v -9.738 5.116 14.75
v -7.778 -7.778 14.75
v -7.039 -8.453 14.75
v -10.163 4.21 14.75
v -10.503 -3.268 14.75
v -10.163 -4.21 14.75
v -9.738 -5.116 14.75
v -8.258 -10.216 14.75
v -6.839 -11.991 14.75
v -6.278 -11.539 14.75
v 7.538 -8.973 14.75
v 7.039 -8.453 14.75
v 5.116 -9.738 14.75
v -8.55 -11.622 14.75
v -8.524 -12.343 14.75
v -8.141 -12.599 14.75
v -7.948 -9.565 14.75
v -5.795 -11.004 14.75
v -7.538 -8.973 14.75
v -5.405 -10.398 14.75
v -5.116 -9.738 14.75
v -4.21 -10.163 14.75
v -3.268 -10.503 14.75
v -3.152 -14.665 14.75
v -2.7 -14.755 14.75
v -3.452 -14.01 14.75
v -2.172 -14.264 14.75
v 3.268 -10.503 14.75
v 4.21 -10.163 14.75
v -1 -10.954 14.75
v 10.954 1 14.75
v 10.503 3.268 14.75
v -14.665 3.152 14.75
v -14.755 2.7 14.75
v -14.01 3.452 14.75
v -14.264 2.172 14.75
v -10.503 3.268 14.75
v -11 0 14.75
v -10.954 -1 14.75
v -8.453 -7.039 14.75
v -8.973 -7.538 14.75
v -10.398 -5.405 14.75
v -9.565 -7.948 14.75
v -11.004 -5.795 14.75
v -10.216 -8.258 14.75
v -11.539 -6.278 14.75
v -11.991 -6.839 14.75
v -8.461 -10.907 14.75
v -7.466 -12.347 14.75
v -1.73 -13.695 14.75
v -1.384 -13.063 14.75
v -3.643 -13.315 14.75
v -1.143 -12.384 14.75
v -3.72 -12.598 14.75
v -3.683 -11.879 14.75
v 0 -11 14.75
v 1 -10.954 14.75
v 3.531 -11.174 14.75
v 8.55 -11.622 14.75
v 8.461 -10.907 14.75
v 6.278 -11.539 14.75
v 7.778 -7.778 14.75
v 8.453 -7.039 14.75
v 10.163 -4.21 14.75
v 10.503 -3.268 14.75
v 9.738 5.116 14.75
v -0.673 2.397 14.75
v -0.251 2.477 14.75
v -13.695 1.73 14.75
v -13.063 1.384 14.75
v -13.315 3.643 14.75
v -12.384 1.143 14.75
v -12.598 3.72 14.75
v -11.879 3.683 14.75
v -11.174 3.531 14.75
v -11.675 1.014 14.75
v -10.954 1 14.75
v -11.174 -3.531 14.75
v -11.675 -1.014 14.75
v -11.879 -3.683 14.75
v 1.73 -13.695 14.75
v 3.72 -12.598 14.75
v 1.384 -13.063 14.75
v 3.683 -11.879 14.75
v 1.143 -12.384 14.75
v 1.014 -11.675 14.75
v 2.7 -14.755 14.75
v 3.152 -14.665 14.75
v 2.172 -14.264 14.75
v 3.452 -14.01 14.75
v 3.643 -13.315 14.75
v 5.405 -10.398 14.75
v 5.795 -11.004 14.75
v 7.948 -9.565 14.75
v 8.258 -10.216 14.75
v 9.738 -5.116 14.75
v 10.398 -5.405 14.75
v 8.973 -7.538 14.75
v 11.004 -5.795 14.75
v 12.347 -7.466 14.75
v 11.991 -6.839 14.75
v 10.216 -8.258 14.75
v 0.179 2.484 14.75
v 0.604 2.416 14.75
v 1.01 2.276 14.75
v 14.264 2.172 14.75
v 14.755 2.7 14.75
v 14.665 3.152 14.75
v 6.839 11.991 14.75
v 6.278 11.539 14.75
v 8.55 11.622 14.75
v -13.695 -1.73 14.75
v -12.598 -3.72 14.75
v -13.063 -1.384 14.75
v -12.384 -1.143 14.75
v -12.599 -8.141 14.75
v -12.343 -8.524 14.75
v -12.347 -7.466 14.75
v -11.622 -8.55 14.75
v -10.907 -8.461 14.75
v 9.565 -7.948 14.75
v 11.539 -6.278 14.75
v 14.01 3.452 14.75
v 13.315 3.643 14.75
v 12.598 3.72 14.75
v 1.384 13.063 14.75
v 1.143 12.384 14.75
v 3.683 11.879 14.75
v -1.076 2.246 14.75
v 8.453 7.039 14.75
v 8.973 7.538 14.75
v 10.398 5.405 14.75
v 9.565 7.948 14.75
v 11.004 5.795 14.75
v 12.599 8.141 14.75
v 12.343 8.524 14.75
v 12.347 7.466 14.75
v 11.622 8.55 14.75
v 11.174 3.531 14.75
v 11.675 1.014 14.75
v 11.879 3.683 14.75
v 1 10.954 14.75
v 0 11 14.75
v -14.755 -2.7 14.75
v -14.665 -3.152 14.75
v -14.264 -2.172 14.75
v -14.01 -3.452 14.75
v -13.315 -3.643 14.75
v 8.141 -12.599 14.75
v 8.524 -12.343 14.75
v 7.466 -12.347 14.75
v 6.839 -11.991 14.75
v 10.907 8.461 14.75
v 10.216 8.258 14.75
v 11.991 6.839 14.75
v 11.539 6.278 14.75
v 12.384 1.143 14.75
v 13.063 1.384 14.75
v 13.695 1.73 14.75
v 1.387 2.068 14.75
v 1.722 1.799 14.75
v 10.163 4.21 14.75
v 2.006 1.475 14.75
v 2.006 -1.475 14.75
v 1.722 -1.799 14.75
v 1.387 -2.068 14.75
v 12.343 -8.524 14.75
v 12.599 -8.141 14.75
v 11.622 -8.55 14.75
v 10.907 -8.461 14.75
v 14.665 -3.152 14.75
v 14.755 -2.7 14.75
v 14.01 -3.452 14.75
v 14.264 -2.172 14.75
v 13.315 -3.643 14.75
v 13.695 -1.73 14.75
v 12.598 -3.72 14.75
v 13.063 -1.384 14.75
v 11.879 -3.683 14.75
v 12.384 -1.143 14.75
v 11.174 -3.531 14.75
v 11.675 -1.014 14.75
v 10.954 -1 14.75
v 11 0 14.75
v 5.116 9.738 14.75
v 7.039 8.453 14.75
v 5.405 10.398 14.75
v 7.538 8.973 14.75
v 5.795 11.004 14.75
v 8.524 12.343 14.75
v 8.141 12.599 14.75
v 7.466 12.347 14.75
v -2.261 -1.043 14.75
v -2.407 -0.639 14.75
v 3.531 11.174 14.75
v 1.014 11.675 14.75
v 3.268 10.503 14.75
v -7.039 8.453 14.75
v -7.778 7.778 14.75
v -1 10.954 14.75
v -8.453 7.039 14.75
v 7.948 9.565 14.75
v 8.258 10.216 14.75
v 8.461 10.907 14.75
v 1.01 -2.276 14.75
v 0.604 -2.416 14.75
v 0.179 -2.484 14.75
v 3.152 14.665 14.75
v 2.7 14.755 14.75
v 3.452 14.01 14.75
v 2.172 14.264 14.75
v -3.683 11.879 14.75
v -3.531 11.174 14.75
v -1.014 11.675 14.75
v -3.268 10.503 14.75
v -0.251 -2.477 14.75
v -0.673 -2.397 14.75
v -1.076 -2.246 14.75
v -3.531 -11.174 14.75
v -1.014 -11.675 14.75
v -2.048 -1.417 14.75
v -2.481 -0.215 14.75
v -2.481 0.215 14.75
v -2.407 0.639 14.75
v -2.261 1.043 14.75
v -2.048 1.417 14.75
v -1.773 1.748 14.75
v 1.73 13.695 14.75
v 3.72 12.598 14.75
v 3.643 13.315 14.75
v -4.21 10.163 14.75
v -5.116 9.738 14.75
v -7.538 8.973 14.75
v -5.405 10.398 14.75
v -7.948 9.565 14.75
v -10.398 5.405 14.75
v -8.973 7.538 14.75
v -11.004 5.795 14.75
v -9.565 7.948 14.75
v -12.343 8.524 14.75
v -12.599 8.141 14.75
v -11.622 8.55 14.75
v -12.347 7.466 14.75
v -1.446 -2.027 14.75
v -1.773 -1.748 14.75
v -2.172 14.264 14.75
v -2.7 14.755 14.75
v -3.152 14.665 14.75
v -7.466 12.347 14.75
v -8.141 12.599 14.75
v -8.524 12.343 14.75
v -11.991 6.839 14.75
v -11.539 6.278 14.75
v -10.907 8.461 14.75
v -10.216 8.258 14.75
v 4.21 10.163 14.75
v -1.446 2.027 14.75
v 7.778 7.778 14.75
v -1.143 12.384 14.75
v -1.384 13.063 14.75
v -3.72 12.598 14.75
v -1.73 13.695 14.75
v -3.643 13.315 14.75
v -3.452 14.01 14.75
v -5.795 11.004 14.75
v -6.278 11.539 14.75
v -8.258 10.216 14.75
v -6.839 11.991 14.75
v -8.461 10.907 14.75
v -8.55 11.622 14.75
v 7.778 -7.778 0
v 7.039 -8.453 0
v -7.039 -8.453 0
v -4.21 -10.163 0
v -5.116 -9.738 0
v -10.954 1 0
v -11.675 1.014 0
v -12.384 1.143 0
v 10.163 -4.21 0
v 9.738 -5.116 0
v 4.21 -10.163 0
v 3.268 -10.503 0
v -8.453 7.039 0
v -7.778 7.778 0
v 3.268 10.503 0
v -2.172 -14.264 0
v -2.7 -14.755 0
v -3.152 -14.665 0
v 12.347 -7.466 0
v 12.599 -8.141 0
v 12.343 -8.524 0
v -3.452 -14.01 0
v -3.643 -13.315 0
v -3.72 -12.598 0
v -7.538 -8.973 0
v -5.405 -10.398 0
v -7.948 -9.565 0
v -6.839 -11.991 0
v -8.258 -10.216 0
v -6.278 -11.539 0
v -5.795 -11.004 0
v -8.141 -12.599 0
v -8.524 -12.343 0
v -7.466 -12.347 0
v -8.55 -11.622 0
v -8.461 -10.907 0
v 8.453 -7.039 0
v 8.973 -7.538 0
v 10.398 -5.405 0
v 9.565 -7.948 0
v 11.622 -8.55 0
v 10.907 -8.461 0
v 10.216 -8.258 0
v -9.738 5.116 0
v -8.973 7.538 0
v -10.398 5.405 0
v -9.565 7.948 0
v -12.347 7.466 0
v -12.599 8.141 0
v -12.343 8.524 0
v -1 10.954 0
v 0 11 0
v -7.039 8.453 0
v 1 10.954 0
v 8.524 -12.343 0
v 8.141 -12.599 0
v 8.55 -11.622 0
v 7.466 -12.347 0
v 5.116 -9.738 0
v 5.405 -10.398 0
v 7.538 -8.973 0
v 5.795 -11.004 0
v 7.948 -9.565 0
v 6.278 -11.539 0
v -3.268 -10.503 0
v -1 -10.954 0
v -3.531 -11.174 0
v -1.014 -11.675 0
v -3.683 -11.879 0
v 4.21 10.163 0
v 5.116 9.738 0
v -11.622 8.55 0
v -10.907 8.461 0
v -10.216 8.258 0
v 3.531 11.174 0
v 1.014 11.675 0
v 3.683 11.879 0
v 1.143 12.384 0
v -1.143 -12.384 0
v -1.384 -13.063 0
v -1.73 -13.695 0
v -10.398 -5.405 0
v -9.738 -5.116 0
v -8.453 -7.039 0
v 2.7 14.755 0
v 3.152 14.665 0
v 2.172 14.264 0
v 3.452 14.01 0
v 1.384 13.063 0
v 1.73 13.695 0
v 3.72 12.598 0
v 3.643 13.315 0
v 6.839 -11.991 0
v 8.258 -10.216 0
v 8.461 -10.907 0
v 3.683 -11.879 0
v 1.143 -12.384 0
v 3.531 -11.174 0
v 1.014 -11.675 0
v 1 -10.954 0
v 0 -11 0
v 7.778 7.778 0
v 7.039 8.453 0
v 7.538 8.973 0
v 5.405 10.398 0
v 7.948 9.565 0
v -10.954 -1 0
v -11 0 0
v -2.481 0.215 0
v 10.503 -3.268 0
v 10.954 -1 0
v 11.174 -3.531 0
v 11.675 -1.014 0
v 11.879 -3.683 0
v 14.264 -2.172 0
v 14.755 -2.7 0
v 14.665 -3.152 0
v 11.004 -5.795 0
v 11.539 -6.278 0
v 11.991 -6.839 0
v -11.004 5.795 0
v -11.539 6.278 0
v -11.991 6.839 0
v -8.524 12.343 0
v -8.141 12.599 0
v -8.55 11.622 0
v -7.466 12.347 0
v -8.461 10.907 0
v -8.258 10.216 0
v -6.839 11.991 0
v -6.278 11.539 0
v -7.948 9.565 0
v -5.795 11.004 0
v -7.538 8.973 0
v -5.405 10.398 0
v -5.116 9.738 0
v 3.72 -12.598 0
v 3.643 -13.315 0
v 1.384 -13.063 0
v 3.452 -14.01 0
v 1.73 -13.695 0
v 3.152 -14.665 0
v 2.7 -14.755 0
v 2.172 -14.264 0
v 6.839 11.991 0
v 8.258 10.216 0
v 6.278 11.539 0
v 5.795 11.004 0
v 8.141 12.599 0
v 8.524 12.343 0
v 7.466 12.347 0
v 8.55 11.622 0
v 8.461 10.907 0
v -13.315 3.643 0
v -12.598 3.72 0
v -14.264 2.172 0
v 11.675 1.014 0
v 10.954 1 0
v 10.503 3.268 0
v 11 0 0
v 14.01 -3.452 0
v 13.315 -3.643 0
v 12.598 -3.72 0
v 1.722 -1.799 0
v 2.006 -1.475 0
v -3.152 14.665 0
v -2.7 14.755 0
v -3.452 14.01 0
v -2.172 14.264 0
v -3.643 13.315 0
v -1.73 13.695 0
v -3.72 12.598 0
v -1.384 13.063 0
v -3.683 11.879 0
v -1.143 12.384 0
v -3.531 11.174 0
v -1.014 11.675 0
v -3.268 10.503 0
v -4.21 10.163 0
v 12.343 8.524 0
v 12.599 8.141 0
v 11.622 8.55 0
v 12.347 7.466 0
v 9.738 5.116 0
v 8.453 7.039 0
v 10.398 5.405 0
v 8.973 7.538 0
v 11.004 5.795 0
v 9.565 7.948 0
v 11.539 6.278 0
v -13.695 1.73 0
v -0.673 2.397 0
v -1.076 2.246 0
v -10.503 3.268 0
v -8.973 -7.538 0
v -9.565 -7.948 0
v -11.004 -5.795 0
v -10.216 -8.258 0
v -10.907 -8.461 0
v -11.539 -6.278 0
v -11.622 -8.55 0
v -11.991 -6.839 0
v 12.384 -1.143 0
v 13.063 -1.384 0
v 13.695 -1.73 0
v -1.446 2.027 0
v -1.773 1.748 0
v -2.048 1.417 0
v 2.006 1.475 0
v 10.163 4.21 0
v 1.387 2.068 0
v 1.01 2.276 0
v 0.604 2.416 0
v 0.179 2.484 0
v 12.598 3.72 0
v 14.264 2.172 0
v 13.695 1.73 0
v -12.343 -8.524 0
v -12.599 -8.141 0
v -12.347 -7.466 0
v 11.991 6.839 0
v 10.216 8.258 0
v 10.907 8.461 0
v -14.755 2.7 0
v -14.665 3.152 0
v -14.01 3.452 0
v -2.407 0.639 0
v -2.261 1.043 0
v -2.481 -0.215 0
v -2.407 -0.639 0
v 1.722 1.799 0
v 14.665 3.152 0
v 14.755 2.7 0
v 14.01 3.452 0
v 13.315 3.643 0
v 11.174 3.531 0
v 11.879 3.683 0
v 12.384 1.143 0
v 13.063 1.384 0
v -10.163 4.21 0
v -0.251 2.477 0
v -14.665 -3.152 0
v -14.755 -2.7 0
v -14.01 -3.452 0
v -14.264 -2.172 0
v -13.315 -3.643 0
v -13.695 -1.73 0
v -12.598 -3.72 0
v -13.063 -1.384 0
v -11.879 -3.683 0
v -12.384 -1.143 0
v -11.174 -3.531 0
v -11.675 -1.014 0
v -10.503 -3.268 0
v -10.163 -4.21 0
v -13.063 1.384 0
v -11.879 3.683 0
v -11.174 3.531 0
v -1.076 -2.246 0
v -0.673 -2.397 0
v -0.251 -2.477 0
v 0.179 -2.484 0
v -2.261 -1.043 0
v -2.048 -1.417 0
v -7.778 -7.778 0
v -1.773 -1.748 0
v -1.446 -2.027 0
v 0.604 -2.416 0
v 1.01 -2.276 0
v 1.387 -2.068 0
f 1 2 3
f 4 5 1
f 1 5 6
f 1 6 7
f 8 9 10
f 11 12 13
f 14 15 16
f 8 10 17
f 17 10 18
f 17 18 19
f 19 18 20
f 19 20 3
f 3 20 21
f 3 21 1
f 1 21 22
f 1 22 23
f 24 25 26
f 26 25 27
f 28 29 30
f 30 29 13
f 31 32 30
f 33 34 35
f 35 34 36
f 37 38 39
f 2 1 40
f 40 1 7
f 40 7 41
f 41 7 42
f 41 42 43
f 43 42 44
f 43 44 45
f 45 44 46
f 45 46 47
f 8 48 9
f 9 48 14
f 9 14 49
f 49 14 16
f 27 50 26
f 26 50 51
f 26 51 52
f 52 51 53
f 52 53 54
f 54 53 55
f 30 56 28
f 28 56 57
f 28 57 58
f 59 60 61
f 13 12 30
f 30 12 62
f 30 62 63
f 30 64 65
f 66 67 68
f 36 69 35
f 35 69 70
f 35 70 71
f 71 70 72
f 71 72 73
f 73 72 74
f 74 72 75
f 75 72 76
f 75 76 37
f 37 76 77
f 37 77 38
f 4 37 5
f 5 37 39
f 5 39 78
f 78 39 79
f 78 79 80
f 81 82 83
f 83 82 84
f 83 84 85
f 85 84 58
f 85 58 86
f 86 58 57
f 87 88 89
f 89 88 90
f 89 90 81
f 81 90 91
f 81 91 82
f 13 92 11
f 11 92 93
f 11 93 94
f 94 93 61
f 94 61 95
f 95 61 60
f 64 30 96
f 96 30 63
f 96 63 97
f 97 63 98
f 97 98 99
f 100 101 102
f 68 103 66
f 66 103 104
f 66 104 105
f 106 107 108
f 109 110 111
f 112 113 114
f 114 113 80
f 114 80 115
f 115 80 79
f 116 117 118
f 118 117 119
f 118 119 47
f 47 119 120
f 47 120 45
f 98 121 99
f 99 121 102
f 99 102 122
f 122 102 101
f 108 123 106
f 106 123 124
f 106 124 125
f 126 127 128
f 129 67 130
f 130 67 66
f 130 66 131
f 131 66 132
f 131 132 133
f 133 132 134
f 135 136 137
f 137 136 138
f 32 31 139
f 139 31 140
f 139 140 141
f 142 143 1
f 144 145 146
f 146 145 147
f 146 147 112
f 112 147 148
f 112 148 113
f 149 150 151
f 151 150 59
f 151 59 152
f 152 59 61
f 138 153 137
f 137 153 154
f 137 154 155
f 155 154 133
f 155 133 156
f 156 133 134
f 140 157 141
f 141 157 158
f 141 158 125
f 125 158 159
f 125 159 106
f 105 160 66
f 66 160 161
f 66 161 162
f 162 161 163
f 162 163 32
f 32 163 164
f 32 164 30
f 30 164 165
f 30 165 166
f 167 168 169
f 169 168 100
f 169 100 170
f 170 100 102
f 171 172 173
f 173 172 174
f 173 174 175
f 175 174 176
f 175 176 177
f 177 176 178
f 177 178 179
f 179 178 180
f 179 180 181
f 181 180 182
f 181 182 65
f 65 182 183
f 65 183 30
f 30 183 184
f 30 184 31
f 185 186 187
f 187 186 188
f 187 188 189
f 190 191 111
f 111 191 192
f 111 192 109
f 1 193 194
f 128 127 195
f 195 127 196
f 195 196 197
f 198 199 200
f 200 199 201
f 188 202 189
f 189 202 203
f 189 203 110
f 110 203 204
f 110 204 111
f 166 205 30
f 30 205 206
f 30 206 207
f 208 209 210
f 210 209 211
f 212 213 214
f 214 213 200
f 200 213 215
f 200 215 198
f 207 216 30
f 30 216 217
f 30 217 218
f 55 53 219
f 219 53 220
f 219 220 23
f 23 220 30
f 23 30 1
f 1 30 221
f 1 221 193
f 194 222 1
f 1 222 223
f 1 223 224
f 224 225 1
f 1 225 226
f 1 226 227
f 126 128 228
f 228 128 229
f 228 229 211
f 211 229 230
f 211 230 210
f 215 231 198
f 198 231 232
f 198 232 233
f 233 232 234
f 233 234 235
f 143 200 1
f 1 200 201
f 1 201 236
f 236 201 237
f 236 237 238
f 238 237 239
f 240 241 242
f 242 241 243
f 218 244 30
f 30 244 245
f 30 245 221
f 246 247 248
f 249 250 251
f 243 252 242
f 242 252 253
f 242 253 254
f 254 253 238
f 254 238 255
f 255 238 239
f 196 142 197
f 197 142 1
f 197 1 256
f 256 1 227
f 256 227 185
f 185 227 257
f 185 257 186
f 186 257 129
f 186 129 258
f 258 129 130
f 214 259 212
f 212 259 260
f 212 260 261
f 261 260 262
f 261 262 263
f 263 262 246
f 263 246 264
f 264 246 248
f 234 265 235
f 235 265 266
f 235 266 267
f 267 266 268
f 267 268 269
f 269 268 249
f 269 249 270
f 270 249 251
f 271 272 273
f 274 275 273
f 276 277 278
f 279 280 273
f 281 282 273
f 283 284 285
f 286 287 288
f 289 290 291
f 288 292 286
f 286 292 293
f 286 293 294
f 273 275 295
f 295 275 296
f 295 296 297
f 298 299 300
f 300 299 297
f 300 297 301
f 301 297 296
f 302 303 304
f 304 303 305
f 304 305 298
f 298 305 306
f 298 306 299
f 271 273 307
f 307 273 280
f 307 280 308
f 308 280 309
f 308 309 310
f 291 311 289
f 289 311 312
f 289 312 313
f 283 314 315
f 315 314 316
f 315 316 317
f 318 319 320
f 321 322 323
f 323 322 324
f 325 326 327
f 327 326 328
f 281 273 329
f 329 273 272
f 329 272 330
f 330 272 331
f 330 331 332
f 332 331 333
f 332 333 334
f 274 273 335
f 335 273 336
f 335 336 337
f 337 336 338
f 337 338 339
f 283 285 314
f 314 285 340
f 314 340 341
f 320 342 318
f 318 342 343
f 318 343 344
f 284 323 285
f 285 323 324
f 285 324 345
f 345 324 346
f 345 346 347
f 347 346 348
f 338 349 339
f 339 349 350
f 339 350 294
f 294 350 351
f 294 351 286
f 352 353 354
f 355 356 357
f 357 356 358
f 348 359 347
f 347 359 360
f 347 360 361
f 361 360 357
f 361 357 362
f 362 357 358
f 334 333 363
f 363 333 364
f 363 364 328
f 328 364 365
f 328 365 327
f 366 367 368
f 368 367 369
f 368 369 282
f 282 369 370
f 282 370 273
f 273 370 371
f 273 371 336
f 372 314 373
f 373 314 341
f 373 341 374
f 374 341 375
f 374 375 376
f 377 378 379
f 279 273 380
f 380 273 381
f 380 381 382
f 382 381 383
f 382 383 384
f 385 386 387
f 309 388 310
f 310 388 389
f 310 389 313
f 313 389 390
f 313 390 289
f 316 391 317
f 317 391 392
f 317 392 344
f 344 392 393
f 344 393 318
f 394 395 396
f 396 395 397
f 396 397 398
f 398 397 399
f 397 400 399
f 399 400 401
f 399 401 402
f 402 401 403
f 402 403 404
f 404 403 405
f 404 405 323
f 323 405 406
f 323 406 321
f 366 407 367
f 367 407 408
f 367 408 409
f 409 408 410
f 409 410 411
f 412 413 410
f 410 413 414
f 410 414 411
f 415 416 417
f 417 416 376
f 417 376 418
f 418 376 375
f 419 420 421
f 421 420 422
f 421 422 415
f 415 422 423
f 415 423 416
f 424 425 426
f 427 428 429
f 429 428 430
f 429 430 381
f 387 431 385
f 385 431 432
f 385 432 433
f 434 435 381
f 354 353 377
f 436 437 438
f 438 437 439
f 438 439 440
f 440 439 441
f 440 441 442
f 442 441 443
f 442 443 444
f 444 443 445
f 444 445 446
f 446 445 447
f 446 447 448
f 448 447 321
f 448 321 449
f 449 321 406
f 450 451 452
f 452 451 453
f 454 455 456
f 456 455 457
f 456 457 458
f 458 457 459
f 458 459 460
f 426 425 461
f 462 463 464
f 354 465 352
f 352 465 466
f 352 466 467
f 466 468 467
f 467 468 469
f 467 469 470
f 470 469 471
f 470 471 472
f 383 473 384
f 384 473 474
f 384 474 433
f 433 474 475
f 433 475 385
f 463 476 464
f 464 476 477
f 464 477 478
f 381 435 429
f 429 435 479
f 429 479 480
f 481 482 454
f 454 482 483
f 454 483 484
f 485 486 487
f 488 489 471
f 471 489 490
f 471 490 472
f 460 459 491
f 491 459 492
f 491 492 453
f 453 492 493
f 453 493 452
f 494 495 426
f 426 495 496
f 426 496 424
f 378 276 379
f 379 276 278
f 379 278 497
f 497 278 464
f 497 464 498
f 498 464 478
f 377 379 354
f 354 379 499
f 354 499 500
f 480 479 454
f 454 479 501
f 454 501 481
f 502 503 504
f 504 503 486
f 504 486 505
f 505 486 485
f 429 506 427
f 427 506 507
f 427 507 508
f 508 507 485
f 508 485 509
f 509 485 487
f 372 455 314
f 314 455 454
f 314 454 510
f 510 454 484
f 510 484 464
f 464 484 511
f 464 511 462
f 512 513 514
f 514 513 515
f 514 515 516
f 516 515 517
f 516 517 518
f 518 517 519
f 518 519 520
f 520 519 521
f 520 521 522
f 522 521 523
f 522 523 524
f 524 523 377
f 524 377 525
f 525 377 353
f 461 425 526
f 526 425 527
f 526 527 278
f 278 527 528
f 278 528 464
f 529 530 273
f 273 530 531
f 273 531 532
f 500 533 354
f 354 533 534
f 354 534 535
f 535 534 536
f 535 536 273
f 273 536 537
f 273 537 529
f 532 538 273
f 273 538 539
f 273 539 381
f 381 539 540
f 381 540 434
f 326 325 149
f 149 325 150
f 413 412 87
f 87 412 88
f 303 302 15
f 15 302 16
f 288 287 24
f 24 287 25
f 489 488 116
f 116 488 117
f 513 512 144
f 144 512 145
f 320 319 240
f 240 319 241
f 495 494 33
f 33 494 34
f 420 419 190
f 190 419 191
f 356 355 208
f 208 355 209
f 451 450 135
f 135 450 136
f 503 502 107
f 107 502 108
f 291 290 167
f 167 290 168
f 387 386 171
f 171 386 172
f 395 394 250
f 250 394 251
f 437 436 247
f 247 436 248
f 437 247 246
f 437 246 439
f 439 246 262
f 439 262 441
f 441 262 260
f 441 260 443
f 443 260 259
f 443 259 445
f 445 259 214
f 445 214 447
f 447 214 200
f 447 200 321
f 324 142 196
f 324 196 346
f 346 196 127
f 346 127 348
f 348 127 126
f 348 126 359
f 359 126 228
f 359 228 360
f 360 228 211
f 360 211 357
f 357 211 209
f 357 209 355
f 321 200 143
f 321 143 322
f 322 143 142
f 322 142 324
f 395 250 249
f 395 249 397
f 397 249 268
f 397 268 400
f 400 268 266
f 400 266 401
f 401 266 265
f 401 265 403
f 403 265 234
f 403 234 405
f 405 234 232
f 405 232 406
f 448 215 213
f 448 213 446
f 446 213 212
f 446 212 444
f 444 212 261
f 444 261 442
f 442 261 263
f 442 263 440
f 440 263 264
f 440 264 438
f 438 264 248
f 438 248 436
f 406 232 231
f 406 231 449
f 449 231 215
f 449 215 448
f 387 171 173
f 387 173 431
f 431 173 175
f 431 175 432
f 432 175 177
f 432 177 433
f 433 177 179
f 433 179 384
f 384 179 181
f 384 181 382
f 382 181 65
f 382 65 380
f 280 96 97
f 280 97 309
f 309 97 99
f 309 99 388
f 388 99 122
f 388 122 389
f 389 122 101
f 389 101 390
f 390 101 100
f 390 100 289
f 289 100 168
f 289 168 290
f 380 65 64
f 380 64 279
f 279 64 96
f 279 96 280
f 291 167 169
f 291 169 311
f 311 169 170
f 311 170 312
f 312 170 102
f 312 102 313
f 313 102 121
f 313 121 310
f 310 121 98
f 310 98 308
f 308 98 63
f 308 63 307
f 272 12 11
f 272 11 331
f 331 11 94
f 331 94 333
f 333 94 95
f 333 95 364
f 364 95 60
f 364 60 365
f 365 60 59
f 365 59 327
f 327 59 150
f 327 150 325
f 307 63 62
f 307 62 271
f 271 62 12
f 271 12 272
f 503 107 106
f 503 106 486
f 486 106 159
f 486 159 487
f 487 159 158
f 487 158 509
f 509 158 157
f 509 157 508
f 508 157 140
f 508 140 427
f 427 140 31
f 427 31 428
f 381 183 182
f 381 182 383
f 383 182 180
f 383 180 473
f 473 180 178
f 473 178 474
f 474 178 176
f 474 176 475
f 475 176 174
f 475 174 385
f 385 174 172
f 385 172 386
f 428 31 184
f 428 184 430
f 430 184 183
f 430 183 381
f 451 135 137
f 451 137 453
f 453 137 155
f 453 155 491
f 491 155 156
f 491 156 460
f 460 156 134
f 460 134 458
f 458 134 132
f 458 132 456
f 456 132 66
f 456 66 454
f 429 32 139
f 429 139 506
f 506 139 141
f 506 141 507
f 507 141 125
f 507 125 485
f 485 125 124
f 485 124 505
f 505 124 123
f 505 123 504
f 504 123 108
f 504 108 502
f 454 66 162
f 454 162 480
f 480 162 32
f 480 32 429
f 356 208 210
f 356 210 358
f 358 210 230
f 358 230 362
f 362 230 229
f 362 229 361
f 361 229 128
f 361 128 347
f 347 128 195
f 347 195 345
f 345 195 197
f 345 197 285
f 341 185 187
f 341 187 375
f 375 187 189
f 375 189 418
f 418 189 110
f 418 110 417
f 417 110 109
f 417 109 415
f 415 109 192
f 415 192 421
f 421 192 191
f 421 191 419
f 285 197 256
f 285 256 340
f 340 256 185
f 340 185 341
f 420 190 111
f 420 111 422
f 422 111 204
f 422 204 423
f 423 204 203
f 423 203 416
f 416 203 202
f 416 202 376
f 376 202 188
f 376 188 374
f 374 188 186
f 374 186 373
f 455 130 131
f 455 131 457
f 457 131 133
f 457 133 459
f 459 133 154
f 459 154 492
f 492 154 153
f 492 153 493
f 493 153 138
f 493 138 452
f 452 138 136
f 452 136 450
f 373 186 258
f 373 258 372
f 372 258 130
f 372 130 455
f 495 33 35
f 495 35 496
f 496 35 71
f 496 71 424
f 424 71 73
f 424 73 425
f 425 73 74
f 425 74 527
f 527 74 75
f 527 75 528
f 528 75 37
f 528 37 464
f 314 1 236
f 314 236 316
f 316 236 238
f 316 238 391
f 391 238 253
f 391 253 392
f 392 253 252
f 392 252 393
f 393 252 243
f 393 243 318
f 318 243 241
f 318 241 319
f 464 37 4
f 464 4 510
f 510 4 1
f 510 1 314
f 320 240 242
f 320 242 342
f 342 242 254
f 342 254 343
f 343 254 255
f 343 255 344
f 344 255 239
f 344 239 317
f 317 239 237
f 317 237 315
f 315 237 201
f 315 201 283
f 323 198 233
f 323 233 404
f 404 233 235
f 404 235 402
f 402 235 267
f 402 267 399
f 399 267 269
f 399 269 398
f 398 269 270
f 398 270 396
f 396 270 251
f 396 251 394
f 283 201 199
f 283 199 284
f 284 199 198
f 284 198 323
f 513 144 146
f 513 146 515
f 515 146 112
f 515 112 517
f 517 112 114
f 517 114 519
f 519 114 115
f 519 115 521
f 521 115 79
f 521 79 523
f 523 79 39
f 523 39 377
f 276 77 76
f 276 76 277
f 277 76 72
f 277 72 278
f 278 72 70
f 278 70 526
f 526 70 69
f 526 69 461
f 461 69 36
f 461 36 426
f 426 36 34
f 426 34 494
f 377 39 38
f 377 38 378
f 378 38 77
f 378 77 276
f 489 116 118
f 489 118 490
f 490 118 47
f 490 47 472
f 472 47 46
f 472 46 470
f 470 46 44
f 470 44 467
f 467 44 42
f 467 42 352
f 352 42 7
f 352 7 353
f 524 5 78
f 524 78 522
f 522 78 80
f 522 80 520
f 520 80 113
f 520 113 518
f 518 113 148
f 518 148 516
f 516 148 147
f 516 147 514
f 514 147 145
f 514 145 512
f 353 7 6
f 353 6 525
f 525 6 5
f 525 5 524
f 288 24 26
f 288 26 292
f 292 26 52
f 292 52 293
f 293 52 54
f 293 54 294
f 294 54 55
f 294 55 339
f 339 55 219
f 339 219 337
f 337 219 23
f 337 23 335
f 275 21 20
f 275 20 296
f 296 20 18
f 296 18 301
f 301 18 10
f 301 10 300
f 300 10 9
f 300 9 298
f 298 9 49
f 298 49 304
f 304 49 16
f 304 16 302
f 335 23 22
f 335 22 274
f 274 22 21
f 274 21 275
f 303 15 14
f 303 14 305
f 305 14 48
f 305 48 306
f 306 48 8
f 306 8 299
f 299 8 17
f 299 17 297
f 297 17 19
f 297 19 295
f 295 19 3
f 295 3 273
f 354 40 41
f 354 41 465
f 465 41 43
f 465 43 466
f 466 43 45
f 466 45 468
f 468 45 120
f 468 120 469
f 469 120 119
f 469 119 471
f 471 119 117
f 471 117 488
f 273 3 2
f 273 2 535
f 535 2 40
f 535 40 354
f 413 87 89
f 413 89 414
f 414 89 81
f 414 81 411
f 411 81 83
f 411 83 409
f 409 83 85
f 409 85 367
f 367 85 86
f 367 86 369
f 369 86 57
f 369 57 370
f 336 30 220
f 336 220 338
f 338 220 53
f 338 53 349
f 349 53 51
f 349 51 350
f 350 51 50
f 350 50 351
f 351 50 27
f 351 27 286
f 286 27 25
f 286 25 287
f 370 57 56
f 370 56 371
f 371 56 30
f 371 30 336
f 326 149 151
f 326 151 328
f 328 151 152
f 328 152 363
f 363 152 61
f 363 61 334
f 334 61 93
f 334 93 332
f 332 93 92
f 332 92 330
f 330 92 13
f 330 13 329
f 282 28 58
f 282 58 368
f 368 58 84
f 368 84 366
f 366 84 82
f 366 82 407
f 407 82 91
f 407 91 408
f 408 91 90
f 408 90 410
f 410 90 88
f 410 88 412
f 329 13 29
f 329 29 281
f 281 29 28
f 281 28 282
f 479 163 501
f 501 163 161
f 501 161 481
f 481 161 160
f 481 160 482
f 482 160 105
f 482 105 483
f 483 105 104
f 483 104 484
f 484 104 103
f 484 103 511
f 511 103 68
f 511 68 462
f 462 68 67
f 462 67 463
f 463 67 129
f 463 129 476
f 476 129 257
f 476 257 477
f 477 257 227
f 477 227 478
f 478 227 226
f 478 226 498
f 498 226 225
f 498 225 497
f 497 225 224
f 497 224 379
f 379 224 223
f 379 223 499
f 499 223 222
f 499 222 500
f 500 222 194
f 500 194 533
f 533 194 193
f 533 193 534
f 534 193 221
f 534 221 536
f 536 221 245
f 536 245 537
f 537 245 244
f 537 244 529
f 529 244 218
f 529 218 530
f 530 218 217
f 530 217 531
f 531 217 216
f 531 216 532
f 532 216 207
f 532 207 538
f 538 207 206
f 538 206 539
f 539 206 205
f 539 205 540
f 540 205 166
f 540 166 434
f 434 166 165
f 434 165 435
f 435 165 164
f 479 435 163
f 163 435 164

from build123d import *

# Parameters (mm, degrees)
SKETCH1_R           = 15
BOSS_EXTRUDE1_DEPTH = 14.75
CUT_EXTRUDE1_DEPTH  = 15.75
CIRPATTERN1_COUNT   = 16
CUT_EXTRUDE2_DEPTH  = 15.75


with BuildPart() as part:
    # Sketch1 → Boss-Extrude1 (new body)
    with BuildSketch(Plane.XY):
        Circle(SKETCH1_R)
    extrude(amount=BOSS_EXTRUDE1_DEPTH)

    # Sketch2 → Cut-Extrude1 (cut, through all)
    with BuildSketch(Plane.XY.offset(14.75)):
        with BuildLine():
            ThreePointArc((-1, 10.95445115), (0, 11), (1, 10.95445115))
            ThreePointArc((1, 10.95445115), (1.384034944, 13.063153145), (2.7, 14.754999153))
            ThreePointArc((2.7, 14.754999153), (0, 15), (-2.7, 14.754999153))
            ThreePointArc((-2.7, 14.754999153), (-1.384034944, 13.063153145), (-1, 10.95445115))
        make_face()
    cut_extrude1 = extrude(amount=-CUT_EXTRUDE1_DEPTH, mode=Mode.SUBTRACT)

    # CirPattern1: Cut-Extrude1 ×16 about axis
    cirpattern1_axis = Axis((0, 0, 0), (0, 0, 1))
    for i in range(1, CIRPATTERN1_COUNT):
        add(cut_extrude1.rotate(cirpattern1_axis, i * 360 / CIRPATTERN1_COUNT), mode=Mode.SUBTRACT)

    # Sketch3 → Cut-Extrude2 (cut, through all)
    with BuildSketch(Plane.XY.offset(14.75)):
        with BuildLine():
            Line((2.0058, 1.47542074), (2.0058, -1.47542074))
            ThreePointArc((2.0058, -1.47542074), (-2.49, 0), (2.0058, 1.47542074))
        make_face()
    extrude(amount=-CUT_EXTRUDE2_DEPTH, mode=Mode.SUBTRACT)


solid = part.part
